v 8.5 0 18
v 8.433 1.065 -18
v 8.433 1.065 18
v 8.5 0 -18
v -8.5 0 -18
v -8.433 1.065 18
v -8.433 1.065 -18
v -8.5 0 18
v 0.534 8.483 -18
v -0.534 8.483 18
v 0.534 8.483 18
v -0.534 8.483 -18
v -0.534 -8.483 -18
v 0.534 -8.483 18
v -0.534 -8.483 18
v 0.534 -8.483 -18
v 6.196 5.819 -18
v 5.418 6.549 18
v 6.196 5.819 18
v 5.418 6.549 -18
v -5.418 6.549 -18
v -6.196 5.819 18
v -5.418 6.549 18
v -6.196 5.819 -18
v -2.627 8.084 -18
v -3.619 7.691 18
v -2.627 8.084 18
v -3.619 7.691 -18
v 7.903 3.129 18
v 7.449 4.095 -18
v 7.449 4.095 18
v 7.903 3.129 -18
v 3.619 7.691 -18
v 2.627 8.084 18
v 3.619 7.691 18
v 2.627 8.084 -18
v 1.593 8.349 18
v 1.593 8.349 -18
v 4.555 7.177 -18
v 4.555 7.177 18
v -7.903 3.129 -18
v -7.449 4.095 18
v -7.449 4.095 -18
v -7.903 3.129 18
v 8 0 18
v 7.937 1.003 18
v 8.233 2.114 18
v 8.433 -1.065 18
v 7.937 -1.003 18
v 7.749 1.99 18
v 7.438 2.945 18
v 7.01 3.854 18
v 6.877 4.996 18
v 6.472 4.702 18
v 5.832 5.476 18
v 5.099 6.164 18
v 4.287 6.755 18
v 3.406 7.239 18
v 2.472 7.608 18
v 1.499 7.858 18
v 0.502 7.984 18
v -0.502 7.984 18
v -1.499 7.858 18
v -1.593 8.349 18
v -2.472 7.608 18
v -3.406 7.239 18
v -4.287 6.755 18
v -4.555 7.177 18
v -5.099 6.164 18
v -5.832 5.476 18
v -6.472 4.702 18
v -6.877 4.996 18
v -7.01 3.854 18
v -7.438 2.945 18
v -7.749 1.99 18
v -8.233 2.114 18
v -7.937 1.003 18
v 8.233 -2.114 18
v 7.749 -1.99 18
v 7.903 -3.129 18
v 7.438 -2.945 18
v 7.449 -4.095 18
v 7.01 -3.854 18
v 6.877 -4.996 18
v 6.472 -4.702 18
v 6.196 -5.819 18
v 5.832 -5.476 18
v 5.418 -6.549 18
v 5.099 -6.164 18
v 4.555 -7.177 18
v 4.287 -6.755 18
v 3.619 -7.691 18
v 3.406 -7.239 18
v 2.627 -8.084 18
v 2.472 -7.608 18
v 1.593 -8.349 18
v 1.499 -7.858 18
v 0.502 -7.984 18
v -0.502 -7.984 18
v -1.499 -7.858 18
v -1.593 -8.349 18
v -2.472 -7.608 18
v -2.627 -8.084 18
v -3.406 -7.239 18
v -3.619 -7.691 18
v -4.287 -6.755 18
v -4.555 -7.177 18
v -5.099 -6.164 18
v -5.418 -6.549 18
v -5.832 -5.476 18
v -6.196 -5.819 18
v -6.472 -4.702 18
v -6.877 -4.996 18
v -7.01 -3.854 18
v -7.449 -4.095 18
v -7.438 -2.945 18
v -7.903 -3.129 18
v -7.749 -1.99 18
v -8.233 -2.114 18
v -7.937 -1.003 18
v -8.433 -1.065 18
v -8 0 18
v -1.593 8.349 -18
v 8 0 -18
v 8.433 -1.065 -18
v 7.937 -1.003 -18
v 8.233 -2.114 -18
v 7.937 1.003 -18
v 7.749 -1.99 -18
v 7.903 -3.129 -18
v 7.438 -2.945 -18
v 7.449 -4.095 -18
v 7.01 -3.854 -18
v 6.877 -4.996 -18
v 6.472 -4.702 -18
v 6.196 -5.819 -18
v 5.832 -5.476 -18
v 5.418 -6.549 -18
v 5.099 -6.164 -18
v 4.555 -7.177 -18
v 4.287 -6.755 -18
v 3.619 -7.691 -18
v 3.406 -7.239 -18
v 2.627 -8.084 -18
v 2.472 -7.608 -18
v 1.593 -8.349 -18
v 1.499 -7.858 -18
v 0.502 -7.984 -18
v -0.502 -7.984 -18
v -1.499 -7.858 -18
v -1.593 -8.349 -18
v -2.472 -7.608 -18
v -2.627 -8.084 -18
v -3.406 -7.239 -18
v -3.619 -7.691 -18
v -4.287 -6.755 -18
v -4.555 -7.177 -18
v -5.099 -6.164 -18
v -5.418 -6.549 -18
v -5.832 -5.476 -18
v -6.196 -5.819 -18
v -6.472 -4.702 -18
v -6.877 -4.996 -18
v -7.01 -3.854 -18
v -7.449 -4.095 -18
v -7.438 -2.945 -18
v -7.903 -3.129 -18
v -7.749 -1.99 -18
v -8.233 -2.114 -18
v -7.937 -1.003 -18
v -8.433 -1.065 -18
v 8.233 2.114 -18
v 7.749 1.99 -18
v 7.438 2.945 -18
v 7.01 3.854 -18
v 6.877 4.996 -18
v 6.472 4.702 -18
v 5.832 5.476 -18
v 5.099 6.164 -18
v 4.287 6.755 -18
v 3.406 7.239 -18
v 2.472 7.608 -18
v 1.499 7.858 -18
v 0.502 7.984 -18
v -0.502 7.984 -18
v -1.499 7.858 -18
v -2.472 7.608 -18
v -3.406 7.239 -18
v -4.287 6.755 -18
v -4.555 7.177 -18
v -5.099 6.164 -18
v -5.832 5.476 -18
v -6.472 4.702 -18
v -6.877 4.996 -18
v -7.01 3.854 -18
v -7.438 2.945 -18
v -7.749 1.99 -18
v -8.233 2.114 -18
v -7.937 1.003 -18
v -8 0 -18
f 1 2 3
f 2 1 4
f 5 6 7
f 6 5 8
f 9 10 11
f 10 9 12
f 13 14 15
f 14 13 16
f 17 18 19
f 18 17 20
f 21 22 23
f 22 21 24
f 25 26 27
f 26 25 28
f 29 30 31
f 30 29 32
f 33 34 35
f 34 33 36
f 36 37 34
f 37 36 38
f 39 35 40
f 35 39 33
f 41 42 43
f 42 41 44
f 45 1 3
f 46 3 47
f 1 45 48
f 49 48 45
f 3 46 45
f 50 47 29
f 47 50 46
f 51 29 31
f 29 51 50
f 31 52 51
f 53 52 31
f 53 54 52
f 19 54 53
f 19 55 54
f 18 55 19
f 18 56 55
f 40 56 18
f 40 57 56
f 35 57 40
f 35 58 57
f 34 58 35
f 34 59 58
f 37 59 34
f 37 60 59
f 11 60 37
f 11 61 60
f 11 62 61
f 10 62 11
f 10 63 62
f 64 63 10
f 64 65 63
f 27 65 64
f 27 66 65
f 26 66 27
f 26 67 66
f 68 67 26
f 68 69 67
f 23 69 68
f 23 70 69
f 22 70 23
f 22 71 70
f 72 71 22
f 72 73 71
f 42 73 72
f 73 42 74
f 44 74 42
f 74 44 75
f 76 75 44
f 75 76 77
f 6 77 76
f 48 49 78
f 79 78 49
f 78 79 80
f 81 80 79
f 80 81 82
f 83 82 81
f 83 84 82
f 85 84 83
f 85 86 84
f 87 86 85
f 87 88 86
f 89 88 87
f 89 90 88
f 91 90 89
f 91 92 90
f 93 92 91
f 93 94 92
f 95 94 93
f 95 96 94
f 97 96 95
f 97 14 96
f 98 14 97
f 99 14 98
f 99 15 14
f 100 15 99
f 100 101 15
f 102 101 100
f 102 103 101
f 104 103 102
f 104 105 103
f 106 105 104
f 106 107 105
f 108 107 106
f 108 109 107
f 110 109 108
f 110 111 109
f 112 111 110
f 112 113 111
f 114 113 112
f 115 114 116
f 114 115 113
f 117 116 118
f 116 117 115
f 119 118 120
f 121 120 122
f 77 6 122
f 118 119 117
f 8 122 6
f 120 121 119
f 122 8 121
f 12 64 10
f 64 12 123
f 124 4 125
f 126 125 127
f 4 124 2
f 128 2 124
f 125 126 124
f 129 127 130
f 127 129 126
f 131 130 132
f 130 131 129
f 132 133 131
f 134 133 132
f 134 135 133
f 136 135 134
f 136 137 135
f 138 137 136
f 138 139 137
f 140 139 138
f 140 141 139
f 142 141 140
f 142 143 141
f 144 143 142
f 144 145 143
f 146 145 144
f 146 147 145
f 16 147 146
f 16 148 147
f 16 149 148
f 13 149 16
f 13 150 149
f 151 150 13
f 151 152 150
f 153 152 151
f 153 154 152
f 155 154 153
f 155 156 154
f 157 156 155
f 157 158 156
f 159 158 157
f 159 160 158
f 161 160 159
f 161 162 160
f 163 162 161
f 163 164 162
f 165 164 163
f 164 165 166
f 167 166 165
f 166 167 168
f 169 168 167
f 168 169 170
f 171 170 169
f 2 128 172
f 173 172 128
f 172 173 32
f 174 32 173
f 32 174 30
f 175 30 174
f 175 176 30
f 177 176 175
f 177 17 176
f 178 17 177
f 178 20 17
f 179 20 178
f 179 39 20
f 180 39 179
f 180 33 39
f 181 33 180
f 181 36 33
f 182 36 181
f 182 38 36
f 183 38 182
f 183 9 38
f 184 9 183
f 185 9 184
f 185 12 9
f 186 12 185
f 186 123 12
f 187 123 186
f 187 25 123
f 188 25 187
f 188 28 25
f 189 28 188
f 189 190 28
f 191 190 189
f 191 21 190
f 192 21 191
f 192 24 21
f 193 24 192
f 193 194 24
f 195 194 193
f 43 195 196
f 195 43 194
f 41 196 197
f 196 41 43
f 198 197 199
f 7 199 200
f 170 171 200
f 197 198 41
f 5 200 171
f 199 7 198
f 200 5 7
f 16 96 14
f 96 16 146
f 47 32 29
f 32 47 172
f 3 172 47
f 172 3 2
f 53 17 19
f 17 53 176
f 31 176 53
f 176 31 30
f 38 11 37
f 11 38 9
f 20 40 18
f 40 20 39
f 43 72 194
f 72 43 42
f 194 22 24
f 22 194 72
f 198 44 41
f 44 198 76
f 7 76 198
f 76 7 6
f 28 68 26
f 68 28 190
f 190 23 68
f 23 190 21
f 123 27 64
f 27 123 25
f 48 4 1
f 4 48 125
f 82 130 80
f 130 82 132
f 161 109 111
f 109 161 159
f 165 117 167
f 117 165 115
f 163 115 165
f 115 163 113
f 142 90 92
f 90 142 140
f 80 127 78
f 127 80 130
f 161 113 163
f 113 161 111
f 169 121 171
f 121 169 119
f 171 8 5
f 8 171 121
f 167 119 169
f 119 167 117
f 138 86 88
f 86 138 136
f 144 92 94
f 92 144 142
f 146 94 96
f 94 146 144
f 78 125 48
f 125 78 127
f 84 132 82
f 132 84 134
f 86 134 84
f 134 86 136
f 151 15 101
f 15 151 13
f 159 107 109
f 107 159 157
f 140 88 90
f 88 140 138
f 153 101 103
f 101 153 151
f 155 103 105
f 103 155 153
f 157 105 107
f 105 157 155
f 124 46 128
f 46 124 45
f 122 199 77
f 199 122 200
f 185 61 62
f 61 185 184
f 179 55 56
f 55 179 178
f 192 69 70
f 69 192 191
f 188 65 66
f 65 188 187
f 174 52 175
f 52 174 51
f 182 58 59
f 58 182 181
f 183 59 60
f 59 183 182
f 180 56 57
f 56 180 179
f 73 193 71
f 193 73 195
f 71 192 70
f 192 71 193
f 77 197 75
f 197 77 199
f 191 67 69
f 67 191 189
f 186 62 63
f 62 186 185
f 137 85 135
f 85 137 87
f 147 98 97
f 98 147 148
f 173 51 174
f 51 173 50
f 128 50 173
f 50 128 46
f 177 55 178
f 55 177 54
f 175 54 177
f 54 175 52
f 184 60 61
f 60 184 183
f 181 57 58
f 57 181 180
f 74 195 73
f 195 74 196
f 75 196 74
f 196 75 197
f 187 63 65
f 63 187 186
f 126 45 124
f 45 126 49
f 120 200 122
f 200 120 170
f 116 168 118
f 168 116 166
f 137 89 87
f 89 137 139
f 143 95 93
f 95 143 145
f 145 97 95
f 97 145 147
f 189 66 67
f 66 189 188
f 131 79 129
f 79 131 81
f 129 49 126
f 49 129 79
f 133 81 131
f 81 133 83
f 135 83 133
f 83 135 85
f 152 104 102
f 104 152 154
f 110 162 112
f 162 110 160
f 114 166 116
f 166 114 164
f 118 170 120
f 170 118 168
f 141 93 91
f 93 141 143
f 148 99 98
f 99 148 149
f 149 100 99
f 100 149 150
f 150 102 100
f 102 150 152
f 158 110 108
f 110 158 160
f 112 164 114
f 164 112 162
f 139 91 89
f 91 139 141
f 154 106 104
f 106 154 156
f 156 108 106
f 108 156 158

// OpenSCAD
$fn = 50;


difference() {
	union() {
		translate(v = [0, 0, -18.0000000000]) {
			cylinder(h = 36, r = 8.5000000000);
		}
	}
	union() {
		translate(v = [0, 0, -100.0000000000]) {
			cylinder(h = 200, r = 8);
		}
	}
}
